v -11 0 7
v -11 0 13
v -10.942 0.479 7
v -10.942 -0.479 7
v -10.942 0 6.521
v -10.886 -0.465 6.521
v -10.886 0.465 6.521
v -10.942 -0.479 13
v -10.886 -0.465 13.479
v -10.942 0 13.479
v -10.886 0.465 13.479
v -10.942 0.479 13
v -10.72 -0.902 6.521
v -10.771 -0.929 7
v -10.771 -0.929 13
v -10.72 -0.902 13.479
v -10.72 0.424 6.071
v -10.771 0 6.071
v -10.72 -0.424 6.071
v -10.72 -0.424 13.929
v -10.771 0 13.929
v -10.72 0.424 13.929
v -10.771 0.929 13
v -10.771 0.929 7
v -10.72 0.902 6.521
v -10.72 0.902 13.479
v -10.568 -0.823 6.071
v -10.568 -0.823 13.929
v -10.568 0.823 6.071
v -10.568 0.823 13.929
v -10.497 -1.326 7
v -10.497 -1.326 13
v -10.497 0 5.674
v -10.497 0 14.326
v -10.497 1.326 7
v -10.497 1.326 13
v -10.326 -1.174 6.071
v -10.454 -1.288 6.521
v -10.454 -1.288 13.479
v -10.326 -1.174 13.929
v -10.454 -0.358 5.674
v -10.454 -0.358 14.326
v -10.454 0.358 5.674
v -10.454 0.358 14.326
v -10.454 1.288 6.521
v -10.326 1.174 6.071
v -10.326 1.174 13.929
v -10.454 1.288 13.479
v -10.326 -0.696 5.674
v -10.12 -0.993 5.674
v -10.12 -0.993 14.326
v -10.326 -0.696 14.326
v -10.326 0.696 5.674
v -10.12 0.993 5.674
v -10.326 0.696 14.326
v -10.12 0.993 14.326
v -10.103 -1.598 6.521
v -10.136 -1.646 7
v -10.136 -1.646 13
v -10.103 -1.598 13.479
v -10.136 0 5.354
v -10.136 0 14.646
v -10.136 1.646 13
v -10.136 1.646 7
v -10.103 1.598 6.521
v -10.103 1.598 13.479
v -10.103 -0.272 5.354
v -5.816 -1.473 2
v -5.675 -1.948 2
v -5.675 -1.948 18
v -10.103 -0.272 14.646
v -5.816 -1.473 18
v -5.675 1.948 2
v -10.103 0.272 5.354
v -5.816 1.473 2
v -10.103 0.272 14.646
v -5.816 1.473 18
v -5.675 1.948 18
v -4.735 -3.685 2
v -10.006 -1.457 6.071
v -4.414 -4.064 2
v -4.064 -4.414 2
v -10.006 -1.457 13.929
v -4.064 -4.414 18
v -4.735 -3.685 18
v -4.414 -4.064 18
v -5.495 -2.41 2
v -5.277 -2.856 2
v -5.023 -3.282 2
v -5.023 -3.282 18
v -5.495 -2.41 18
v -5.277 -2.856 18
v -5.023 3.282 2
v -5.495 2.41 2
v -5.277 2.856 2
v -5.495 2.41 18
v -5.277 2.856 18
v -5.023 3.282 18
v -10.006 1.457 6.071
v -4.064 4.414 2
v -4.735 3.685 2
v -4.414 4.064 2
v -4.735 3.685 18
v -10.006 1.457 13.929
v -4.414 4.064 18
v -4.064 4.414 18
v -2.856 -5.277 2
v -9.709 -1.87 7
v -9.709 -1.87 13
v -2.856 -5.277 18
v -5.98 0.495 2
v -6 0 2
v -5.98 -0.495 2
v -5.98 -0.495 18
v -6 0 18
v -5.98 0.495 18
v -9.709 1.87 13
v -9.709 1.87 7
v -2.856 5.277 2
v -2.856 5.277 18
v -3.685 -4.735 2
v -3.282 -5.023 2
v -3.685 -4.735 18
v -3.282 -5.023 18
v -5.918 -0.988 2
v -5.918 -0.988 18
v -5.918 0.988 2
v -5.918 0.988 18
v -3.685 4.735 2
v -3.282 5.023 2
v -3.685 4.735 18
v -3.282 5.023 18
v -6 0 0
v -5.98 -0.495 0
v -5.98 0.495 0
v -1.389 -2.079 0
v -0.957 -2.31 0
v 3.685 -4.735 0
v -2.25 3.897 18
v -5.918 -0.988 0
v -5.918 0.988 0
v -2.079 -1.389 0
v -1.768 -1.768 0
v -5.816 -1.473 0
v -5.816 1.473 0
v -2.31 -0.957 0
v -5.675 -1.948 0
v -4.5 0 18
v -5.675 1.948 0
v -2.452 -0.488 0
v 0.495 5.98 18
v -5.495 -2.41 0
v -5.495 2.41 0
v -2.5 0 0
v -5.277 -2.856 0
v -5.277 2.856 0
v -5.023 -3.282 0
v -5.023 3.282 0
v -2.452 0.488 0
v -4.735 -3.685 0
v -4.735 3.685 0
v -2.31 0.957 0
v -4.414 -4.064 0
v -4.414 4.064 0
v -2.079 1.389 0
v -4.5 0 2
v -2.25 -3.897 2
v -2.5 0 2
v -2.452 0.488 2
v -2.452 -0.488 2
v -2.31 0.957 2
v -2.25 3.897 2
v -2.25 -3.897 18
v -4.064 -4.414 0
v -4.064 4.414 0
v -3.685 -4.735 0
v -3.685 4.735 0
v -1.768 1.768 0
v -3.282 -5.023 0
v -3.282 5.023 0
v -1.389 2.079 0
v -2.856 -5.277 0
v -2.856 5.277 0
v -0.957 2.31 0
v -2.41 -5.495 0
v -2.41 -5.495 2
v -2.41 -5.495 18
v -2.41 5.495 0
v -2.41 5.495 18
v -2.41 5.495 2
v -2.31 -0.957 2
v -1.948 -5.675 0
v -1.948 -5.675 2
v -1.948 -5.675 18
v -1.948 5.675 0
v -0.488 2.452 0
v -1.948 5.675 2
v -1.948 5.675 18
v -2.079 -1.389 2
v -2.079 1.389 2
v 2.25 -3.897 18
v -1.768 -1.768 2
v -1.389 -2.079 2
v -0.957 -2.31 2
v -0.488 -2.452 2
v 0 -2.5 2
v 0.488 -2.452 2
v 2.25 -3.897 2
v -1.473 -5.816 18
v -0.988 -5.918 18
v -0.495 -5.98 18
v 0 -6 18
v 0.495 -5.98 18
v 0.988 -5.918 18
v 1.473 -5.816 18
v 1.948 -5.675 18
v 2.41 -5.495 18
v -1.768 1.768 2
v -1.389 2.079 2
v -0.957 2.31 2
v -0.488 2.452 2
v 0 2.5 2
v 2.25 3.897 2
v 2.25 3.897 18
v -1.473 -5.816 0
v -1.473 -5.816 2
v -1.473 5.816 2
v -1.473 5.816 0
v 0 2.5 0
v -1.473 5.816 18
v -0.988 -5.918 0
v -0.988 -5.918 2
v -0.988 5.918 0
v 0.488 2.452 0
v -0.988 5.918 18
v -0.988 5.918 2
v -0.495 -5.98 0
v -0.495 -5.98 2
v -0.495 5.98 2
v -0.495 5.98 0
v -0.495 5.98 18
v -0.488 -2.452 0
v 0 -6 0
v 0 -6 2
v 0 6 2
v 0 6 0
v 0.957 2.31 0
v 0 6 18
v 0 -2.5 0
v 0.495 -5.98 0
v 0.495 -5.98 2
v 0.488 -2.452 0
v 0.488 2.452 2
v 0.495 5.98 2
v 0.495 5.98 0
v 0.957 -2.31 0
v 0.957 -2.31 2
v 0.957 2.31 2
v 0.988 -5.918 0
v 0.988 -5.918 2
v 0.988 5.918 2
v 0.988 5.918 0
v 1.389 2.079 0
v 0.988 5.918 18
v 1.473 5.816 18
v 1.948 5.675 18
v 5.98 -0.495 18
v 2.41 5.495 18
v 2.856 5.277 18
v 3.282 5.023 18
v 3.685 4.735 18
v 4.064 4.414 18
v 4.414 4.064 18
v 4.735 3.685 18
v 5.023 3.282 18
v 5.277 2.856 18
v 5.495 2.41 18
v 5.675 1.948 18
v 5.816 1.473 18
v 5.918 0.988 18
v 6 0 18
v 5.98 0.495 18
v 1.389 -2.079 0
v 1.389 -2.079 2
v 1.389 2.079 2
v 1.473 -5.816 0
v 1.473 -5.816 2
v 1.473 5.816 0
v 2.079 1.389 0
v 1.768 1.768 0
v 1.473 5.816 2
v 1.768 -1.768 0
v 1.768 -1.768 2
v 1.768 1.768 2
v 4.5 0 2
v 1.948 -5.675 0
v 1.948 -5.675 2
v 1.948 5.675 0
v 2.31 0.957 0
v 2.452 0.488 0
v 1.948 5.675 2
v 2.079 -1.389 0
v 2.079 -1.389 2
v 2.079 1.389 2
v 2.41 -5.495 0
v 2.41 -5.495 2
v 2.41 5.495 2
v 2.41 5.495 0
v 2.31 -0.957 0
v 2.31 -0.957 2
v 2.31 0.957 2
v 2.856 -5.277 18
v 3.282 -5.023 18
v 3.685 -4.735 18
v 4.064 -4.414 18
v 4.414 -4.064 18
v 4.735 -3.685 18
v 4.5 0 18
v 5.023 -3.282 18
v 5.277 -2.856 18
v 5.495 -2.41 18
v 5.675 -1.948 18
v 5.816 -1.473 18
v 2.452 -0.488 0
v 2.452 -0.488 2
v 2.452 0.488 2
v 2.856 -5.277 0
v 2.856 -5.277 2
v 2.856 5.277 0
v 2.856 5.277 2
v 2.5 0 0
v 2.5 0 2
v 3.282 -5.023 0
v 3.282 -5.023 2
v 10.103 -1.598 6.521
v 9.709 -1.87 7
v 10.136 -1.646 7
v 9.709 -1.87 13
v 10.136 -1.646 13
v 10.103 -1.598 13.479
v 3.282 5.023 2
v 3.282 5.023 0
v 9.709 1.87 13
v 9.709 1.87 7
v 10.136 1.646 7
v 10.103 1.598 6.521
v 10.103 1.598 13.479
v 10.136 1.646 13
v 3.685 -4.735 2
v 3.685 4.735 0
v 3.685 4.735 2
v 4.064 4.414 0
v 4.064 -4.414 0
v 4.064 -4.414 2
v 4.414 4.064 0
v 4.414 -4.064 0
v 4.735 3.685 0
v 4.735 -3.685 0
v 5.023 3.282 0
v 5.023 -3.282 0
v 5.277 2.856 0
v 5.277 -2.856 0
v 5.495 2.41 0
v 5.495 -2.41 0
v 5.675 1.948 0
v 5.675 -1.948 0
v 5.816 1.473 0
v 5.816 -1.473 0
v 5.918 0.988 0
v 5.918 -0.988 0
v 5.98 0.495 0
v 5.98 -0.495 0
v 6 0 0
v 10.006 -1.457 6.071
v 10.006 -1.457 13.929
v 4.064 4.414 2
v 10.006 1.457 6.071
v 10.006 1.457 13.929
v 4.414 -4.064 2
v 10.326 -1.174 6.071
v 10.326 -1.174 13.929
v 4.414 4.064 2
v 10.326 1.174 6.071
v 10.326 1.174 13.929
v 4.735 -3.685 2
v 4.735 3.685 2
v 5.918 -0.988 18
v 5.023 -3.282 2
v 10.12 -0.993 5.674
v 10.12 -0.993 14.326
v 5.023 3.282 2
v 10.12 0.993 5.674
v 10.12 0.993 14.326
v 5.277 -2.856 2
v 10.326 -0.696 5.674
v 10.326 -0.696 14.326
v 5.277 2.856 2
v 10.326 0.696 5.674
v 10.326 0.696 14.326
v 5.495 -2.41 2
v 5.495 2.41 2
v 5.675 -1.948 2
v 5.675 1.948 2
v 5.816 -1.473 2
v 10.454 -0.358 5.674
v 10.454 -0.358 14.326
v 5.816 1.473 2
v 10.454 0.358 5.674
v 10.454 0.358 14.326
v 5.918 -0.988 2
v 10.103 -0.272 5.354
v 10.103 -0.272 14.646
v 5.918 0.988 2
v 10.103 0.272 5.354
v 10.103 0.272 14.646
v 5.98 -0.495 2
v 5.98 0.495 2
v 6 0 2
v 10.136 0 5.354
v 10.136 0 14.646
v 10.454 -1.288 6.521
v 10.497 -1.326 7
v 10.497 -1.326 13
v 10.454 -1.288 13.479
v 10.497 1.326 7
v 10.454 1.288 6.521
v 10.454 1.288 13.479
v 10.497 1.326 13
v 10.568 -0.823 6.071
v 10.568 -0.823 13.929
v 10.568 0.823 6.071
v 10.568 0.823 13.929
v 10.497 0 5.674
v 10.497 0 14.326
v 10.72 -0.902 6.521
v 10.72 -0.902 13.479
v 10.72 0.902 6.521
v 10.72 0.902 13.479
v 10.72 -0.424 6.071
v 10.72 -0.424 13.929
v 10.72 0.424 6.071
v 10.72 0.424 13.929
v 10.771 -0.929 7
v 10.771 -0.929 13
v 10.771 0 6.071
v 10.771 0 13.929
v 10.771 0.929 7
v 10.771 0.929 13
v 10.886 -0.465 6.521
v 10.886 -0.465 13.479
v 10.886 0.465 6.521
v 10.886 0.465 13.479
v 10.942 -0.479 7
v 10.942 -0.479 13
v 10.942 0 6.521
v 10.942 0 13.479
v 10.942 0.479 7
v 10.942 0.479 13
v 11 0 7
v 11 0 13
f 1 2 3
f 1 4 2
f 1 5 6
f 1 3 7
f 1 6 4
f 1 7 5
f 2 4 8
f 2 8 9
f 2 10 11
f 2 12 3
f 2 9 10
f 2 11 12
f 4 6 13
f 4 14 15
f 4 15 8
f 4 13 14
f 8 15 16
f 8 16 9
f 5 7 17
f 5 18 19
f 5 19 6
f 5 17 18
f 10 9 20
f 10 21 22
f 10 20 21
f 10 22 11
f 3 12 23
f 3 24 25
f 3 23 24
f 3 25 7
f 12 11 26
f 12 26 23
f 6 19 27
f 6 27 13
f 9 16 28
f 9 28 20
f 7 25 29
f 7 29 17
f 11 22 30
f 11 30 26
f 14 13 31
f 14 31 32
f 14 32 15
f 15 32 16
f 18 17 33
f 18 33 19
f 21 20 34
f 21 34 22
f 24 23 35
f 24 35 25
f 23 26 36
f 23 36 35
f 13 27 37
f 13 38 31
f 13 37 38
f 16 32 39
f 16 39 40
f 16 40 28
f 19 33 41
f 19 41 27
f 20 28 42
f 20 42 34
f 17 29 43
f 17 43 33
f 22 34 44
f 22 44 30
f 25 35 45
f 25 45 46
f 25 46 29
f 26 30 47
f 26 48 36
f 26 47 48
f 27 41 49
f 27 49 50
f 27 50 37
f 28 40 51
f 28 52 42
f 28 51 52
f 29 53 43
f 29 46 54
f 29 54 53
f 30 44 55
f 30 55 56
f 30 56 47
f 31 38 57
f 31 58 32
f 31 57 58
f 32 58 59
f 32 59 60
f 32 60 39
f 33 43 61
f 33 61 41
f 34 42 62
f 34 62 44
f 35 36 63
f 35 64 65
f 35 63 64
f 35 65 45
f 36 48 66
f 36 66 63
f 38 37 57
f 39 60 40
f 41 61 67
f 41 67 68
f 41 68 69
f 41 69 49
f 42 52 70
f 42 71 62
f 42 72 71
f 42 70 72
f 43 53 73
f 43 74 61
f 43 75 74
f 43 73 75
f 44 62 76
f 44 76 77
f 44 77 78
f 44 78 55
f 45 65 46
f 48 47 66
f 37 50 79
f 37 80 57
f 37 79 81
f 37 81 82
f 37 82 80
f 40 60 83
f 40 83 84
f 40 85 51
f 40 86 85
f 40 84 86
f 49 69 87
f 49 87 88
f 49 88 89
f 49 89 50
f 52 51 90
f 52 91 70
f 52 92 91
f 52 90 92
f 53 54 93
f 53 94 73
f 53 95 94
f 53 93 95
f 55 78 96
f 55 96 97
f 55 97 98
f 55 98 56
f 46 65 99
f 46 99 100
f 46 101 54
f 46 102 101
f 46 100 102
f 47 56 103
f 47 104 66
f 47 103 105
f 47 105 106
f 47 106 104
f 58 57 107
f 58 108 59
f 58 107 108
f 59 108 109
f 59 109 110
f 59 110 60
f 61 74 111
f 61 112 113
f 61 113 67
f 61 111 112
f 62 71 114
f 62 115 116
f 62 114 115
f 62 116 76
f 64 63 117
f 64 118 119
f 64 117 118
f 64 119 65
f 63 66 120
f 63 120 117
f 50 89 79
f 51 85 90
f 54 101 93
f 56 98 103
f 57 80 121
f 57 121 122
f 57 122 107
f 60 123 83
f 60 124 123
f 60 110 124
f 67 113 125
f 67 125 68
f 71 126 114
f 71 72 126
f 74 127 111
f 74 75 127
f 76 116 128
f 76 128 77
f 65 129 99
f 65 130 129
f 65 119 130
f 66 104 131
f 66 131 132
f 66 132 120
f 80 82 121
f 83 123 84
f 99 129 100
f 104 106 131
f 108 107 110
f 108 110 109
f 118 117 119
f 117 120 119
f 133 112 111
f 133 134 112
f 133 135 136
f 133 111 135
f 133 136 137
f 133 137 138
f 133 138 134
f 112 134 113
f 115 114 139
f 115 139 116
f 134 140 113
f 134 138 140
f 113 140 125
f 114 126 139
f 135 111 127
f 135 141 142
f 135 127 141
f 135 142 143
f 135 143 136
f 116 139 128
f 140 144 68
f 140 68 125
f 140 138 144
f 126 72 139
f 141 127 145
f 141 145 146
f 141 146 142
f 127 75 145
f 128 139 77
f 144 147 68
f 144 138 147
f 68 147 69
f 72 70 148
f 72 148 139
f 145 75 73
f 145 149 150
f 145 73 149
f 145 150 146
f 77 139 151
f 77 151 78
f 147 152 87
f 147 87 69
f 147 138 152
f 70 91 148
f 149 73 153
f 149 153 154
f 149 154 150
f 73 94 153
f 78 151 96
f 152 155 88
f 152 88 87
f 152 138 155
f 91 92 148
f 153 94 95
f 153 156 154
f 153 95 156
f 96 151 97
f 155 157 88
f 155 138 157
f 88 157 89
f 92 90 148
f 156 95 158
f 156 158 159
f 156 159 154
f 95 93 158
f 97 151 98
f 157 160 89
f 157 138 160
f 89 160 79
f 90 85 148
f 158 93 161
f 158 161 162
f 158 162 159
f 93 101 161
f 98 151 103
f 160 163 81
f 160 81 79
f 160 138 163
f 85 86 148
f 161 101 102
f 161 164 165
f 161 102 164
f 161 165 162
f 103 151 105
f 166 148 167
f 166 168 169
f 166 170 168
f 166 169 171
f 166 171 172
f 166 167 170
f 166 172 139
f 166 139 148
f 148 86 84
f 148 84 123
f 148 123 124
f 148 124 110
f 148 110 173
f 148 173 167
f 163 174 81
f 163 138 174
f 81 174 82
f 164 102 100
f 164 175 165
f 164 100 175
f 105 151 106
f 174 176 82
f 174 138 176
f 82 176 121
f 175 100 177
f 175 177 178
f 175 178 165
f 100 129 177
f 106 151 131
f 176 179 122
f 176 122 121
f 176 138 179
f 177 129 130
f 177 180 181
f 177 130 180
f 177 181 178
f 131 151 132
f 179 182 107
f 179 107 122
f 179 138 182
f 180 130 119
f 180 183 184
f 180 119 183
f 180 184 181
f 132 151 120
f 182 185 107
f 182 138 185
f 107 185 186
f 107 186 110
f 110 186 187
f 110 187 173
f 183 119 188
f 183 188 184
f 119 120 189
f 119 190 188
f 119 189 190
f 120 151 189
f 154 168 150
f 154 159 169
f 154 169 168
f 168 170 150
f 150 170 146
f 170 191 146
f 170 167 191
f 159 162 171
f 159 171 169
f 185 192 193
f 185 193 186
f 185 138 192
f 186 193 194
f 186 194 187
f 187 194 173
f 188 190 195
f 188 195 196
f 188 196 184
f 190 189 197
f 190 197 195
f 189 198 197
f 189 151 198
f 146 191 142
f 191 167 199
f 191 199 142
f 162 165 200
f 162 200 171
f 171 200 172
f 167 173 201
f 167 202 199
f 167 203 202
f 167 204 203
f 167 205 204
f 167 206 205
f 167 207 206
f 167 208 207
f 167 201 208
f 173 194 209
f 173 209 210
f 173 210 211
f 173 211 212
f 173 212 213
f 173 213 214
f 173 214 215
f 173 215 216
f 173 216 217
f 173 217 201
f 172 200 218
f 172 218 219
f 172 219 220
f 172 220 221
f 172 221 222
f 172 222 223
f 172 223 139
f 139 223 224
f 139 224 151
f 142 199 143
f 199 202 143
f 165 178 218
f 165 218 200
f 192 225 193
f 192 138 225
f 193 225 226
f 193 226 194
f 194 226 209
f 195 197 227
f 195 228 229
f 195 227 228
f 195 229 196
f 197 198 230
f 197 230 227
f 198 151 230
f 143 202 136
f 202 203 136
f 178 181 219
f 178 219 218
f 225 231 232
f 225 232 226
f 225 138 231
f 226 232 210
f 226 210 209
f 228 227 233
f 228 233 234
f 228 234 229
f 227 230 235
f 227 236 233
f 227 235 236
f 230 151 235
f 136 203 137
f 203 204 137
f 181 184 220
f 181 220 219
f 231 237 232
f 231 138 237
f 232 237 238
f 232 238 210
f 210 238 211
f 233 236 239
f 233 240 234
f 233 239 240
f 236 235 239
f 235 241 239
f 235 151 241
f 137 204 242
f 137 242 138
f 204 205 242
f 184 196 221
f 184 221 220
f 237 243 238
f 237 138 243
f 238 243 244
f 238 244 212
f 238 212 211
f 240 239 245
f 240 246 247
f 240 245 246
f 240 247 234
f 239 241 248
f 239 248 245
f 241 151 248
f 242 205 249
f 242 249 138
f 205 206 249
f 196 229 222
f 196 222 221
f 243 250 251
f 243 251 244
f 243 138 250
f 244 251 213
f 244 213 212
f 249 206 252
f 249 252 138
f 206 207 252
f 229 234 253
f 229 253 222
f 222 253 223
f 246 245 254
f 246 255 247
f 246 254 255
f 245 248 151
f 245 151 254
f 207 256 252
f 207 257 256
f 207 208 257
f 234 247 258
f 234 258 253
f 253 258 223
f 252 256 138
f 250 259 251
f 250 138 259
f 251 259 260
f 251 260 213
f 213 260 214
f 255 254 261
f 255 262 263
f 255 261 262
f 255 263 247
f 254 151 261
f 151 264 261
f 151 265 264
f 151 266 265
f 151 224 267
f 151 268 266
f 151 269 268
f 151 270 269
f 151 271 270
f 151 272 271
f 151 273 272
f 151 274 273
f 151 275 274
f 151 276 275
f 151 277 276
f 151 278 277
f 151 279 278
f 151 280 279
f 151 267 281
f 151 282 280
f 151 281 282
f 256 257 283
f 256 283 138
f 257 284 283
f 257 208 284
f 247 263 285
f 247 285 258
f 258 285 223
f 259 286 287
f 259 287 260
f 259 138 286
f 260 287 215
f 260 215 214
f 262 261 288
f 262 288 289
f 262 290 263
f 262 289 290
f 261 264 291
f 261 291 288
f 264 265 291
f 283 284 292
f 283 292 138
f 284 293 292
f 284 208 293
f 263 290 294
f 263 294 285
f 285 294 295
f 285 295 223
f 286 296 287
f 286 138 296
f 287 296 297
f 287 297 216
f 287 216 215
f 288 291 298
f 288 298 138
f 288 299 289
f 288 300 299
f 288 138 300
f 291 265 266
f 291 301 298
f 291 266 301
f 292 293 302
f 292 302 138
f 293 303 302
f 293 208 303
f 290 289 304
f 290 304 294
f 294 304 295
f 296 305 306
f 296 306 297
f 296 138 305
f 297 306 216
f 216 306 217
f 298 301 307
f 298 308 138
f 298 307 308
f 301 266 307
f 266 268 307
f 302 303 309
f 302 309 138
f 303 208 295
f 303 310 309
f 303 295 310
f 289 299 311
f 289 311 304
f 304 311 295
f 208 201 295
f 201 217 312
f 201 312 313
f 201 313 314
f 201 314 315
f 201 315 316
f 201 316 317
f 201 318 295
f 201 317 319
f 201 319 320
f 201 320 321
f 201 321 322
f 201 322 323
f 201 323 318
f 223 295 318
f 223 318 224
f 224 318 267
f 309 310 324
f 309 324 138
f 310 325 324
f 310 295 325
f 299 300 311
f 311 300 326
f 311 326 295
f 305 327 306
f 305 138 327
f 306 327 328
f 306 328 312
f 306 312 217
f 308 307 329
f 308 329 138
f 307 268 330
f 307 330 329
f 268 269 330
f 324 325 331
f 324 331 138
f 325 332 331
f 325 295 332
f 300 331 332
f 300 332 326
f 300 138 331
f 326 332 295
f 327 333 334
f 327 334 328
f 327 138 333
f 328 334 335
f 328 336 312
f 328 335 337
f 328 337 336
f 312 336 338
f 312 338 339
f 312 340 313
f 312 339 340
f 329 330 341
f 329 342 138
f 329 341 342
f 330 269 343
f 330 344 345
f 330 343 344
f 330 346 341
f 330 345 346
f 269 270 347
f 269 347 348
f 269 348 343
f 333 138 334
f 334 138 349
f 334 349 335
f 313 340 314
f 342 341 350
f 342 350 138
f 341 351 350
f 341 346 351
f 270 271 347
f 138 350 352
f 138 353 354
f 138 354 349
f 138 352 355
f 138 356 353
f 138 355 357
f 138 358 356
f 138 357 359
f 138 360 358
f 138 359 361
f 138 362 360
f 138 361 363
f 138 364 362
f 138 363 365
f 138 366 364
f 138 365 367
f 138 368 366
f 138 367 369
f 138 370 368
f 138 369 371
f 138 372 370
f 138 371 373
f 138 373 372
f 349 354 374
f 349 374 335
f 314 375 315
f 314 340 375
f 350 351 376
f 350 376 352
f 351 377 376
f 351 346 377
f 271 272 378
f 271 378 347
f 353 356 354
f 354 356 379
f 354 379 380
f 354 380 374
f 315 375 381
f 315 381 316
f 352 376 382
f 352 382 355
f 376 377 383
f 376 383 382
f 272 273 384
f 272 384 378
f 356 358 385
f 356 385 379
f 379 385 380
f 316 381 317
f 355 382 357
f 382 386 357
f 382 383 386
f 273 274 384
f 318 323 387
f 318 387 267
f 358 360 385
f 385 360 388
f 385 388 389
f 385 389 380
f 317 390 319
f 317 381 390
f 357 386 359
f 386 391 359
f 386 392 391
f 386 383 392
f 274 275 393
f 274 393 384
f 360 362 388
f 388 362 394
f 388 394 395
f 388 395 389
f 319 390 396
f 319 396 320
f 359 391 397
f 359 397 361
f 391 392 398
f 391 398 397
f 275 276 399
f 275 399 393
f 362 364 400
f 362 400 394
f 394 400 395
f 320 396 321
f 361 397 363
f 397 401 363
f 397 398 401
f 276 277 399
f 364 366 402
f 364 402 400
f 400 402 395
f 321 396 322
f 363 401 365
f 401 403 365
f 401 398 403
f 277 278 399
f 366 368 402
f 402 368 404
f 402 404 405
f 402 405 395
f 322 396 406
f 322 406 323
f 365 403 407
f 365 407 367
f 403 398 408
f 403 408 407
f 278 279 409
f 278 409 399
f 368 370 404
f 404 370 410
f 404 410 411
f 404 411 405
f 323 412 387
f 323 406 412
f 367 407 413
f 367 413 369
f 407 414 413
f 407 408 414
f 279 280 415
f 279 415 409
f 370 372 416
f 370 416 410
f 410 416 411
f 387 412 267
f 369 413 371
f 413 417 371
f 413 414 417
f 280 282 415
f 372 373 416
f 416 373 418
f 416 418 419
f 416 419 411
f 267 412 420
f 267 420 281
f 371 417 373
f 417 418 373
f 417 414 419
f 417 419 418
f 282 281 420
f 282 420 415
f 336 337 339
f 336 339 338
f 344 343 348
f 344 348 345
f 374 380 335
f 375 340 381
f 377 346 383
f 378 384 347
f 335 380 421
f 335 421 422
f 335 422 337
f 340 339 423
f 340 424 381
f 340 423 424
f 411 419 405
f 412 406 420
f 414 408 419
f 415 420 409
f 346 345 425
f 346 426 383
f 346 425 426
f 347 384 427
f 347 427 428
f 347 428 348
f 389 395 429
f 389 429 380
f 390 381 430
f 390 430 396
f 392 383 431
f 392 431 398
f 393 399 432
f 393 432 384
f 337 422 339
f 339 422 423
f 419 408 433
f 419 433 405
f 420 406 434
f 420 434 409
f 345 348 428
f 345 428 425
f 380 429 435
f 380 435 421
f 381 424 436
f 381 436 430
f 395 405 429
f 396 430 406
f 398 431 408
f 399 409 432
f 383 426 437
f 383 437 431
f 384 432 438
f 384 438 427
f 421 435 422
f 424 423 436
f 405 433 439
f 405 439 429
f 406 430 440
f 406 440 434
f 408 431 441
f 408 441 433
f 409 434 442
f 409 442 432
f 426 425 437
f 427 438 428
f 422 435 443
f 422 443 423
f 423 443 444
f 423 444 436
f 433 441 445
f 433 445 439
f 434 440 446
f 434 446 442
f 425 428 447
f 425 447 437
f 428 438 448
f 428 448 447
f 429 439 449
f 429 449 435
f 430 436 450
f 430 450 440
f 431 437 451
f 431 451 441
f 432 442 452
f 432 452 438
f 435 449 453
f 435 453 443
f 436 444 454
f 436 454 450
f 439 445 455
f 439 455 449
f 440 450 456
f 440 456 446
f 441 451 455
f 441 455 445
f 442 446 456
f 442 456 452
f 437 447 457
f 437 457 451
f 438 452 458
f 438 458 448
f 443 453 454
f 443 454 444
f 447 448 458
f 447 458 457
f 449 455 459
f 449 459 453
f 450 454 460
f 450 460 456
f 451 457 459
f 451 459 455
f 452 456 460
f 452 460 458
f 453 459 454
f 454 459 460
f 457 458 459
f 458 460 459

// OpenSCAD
//Yet another parametric thumb screw head
//because I did not really like any of the screws I've seen on Thingiverse
h_cp=2;
d_cp=12;
h_lobes=10;
d_bolt=5;
d_head=9;
width=22;
radius=2;
wall=2;
height=18;
bissl=1/100;
$fa=1/1;
$fs=1/2;
difference() {
  union() {
    translate([0,0,h_cp])hull() {
      cylinder(d=d_cp,h=height-h_cp);
      translate([width/2-radius,0,(height-h_cp)/2+h_lobes/2-radius]) sphere(r=radius);
      translate([width/2-radius,0,(height-h_cp)/2-h_lobes/2+radius]) sphere(r=radius);
      translate([-width/2+radius,0,(height-h_cp)/2+h_lobes/2-radius]) sphere(r=radius);
      translate([-width/2+radius,0,(height-h_cp)/2-h_lobes/2+radius]) sphere(r=radius);
    }
    cylinder(h=h_cp,d=d_cp);
  }
  translate([0,0,-bissl])cylinder(d=d_bolt,h=height);
  translate([0,0,wall])cylinder(d=d_head,h=height,$fn=6);
}
